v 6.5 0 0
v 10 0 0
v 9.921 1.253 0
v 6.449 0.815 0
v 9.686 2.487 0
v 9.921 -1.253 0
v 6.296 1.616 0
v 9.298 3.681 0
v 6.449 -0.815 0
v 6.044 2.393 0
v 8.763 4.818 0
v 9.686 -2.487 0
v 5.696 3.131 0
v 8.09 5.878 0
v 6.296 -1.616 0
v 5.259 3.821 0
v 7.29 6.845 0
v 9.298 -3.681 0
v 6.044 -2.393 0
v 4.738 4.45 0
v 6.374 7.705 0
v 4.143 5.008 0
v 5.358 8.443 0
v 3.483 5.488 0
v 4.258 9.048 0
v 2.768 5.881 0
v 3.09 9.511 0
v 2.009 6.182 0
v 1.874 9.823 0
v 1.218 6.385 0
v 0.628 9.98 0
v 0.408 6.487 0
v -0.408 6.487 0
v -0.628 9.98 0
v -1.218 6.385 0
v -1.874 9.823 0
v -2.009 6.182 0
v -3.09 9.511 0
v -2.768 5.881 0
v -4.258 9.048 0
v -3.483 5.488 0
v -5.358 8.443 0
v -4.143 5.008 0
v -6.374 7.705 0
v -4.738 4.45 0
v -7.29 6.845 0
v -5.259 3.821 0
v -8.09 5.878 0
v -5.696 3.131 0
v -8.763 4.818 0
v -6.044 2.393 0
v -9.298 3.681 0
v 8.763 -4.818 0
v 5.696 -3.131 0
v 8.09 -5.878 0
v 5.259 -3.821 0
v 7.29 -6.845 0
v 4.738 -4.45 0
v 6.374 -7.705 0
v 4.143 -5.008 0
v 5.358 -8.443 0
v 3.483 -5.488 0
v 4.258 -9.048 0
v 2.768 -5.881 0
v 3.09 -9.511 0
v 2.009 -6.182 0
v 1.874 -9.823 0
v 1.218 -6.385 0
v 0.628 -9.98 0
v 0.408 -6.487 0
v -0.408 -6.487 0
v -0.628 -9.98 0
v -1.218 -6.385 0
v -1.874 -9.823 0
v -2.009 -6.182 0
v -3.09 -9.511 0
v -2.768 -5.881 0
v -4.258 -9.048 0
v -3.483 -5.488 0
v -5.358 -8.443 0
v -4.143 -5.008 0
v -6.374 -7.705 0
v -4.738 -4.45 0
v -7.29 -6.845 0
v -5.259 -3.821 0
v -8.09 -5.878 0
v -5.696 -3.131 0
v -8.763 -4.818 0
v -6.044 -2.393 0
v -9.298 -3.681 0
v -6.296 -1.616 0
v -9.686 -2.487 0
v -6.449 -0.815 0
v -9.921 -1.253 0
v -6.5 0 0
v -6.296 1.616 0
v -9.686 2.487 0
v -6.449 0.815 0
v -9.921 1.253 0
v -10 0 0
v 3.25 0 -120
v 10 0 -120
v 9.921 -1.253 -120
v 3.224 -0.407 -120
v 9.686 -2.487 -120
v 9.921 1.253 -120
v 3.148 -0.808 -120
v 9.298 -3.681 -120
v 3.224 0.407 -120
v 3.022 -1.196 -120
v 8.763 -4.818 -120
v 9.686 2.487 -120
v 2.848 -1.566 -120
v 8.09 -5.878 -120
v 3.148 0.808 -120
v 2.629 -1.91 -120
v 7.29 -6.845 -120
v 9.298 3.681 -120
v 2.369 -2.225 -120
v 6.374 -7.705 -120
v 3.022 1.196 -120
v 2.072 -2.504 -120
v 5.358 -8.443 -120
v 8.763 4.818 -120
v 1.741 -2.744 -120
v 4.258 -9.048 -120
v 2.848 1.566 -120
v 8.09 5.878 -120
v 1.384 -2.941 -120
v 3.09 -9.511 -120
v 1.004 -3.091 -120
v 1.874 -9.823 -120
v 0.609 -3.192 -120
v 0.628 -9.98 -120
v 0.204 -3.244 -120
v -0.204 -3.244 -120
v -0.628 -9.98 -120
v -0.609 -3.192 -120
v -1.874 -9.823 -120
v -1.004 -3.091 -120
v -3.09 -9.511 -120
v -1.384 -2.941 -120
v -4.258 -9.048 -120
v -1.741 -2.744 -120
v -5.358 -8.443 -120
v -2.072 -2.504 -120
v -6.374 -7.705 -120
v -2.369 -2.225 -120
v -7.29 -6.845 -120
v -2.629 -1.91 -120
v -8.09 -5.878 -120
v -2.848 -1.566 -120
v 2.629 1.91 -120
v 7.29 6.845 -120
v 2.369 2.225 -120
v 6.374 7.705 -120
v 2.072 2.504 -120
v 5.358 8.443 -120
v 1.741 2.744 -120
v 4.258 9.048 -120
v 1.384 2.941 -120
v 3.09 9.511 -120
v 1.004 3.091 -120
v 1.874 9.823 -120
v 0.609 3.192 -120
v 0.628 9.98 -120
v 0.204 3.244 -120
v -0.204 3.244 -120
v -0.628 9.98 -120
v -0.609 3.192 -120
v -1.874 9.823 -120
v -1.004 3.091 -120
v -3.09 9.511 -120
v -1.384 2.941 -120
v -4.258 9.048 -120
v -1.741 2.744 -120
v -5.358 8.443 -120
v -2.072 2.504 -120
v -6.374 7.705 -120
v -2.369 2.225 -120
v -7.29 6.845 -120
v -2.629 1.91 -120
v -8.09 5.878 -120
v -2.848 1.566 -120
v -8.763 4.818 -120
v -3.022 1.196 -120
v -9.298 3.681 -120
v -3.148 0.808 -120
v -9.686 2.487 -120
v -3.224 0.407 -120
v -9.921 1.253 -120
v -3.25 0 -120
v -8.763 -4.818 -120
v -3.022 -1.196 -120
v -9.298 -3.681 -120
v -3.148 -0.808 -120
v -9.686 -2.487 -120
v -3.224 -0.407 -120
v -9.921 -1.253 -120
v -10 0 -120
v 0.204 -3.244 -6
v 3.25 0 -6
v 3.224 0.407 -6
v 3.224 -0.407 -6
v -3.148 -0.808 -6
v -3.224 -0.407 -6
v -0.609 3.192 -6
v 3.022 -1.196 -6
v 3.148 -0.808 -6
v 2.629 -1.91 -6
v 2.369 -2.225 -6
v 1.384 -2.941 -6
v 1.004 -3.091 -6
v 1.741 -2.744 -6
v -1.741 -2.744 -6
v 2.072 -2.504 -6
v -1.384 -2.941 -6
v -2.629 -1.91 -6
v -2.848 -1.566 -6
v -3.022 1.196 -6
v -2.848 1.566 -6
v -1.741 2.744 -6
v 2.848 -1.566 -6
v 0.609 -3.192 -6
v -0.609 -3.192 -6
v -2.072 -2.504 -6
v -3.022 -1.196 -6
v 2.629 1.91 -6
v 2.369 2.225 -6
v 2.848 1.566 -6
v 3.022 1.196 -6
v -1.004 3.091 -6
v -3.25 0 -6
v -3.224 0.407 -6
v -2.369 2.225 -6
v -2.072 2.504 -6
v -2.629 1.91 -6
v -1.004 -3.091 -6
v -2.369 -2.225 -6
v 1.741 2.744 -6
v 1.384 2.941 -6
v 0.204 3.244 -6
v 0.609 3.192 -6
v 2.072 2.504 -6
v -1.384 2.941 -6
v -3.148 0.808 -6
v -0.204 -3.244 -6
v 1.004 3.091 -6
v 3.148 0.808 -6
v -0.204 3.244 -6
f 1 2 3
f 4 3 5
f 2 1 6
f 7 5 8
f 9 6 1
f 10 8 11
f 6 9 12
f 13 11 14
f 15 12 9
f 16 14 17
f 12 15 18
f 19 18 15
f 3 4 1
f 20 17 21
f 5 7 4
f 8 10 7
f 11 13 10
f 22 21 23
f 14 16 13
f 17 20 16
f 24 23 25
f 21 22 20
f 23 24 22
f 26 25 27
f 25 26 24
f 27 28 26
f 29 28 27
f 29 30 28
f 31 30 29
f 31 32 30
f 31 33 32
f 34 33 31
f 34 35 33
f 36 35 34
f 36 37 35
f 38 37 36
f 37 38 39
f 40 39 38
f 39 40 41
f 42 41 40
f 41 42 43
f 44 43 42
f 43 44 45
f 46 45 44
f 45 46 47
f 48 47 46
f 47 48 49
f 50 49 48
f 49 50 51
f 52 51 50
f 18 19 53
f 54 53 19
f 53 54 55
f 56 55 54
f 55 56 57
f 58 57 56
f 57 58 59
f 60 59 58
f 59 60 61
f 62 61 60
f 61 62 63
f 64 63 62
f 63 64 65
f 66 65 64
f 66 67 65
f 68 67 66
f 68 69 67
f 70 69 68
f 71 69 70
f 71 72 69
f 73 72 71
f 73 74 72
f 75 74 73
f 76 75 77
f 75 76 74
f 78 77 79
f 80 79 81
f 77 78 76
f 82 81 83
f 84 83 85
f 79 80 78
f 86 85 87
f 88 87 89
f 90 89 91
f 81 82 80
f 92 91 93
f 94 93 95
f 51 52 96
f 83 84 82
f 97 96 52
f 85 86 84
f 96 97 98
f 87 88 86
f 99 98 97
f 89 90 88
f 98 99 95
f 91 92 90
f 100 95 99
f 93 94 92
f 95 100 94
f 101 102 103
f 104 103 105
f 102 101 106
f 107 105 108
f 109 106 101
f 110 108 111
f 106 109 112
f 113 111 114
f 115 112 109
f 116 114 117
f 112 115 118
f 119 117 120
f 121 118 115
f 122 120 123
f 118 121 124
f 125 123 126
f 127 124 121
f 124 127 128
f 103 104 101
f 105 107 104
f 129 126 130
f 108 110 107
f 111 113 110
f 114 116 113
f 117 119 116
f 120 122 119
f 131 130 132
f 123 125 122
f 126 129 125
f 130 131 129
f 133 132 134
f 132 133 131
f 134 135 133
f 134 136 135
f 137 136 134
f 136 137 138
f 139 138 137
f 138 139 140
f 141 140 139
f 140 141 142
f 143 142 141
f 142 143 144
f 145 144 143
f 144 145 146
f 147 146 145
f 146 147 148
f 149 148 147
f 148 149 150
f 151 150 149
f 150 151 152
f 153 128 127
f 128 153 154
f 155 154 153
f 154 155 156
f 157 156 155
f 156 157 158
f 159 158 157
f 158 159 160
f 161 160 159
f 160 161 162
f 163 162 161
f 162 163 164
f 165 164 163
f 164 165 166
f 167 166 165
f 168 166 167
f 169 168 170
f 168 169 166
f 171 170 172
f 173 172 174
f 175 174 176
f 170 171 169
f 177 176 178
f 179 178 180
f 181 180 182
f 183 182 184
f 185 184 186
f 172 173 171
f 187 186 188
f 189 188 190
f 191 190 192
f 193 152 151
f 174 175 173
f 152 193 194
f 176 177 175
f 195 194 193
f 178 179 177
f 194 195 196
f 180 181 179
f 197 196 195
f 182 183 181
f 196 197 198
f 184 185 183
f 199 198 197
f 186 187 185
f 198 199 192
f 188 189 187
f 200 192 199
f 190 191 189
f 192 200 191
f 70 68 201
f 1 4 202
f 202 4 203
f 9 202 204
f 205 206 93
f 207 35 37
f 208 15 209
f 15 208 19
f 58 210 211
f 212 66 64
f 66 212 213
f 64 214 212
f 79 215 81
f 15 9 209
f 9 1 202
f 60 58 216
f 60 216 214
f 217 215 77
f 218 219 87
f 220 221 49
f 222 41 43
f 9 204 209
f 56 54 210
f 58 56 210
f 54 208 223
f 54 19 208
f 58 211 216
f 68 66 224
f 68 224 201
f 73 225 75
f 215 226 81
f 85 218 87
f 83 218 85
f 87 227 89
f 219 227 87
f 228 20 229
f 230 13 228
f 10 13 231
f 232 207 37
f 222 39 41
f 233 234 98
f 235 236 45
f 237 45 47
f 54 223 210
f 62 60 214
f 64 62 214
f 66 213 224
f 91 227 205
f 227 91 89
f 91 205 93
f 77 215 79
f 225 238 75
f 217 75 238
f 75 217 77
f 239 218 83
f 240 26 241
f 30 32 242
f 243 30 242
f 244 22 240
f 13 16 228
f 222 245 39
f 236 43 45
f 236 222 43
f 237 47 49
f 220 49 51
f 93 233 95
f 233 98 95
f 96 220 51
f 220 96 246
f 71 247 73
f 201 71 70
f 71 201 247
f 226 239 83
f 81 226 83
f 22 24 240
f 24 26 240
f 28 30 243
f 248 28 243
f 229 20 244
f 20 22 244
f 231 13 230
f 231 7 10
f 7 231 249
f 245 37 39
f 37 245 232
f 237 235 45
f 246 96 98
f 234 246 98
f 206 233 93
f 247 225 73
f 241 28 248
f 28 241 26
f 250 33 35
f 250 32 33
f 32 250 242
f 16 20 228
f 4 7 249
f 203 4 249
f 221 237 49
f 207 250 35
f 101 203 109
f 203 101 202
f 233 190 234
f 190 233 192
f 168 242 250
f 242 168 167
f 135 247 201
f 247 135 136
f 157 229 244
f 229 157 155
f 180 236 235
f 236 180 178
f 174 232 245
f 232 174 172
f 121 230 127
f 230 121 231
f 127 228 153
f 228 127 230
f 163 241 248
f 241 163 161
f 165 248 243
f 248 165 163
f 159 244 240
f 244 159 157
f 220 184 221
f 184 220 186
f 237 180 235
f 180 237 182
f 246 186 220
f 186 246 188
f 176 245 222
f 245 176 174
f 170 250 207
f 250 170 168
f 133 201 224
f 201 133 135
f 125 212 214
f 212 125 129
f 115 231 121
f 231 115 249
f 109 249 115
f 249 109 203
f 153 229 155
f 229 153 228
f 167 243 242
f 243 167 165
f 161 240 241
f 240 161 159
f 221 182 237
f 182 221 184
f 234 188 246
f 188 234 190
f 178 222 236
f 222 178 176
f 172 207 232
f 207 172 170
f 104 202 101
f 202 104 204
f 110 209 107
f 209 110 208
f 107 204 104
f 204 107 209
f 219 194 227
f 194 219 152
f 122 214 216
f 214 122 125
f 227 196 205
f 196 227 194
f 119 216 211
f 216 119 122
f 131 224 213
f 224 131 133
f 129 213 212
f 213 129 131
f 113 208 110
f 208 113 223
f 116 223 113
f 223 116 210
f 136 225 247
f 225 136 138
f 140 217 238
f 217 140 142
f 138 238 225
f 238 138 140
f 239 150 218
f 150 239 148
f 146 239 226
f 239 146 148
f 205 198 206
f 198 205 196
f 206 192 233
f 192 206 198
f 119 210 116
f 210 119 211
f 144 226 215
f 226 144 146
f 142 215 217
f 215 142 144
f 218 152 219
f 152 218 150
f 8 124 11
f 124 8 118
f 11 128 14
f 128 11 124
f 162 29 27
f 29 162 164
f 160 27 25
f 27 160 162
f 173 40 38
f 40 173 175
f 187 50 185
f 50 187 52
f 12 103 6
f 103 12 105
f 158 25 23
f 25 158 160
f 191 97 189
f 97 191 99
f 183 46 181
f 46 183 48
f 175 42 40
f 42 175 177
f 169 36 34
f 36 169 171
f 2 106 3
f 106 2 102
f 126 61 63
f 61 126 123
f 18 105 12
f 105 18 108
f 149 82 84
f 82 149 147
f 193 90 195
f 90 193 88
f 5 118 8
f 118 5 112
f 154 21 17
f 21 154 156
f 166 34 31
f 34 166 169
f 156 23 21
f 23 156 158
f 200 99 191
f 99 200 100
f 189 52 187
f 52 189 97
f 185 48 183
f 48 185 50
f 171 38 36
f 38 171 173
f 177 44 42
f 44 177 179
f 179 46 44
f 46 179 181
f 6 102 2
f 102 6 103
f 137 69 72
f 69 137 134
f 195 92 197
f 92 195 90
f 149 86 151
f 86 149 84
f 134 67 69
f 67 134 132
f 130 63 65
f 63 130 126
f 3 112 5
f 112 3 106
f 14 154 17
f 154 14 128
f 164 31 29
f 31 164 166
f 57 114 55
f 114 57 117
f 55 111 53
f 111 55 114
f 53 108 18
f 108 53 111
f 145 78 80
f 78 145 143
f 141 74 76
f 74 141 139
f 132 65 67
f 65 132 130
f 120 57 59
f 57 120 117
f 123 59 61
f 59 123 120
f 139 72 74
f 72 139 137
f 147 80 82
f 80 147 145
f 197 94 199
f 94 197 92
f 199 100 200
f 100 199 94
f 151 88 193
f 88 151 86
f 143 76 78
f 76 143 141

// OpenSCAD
$fn = 50;


difference() {
	union() {
		translate(v = [0, 0, -120.0000000000]) {
			cylinder(h = 120, r = 10.0000000000);
		}
		cylinder(h = 0, r = 13.0000000000);
	}
	union() {
		translate(v = [0, 0, 0]) {
			rotate(a = [0, 0, 0]) {
				difference() {
					union() {
						#translate(v = [0, 0, -120.0000000000]) {
							cylinder(h = 120, r = 2.2500000000);
						}
						#translate(v = [0, 0, -6]) {
							cylinder(h = 6, r = 10.0000000000, r1 = 3.2500000000, r2 = 6.5000000000);
						}
						#translate(v = [0, 0, -120.0000000000]) {
							cylinder(h = 120, r = 3.2500000000);
						}
						#translate(v = [0, 0, -120.0000000000]) {
							cylinder(h = 120, r = 2.2500000000);
						}
					}
					union();
				}
			}
		}
	}
}
